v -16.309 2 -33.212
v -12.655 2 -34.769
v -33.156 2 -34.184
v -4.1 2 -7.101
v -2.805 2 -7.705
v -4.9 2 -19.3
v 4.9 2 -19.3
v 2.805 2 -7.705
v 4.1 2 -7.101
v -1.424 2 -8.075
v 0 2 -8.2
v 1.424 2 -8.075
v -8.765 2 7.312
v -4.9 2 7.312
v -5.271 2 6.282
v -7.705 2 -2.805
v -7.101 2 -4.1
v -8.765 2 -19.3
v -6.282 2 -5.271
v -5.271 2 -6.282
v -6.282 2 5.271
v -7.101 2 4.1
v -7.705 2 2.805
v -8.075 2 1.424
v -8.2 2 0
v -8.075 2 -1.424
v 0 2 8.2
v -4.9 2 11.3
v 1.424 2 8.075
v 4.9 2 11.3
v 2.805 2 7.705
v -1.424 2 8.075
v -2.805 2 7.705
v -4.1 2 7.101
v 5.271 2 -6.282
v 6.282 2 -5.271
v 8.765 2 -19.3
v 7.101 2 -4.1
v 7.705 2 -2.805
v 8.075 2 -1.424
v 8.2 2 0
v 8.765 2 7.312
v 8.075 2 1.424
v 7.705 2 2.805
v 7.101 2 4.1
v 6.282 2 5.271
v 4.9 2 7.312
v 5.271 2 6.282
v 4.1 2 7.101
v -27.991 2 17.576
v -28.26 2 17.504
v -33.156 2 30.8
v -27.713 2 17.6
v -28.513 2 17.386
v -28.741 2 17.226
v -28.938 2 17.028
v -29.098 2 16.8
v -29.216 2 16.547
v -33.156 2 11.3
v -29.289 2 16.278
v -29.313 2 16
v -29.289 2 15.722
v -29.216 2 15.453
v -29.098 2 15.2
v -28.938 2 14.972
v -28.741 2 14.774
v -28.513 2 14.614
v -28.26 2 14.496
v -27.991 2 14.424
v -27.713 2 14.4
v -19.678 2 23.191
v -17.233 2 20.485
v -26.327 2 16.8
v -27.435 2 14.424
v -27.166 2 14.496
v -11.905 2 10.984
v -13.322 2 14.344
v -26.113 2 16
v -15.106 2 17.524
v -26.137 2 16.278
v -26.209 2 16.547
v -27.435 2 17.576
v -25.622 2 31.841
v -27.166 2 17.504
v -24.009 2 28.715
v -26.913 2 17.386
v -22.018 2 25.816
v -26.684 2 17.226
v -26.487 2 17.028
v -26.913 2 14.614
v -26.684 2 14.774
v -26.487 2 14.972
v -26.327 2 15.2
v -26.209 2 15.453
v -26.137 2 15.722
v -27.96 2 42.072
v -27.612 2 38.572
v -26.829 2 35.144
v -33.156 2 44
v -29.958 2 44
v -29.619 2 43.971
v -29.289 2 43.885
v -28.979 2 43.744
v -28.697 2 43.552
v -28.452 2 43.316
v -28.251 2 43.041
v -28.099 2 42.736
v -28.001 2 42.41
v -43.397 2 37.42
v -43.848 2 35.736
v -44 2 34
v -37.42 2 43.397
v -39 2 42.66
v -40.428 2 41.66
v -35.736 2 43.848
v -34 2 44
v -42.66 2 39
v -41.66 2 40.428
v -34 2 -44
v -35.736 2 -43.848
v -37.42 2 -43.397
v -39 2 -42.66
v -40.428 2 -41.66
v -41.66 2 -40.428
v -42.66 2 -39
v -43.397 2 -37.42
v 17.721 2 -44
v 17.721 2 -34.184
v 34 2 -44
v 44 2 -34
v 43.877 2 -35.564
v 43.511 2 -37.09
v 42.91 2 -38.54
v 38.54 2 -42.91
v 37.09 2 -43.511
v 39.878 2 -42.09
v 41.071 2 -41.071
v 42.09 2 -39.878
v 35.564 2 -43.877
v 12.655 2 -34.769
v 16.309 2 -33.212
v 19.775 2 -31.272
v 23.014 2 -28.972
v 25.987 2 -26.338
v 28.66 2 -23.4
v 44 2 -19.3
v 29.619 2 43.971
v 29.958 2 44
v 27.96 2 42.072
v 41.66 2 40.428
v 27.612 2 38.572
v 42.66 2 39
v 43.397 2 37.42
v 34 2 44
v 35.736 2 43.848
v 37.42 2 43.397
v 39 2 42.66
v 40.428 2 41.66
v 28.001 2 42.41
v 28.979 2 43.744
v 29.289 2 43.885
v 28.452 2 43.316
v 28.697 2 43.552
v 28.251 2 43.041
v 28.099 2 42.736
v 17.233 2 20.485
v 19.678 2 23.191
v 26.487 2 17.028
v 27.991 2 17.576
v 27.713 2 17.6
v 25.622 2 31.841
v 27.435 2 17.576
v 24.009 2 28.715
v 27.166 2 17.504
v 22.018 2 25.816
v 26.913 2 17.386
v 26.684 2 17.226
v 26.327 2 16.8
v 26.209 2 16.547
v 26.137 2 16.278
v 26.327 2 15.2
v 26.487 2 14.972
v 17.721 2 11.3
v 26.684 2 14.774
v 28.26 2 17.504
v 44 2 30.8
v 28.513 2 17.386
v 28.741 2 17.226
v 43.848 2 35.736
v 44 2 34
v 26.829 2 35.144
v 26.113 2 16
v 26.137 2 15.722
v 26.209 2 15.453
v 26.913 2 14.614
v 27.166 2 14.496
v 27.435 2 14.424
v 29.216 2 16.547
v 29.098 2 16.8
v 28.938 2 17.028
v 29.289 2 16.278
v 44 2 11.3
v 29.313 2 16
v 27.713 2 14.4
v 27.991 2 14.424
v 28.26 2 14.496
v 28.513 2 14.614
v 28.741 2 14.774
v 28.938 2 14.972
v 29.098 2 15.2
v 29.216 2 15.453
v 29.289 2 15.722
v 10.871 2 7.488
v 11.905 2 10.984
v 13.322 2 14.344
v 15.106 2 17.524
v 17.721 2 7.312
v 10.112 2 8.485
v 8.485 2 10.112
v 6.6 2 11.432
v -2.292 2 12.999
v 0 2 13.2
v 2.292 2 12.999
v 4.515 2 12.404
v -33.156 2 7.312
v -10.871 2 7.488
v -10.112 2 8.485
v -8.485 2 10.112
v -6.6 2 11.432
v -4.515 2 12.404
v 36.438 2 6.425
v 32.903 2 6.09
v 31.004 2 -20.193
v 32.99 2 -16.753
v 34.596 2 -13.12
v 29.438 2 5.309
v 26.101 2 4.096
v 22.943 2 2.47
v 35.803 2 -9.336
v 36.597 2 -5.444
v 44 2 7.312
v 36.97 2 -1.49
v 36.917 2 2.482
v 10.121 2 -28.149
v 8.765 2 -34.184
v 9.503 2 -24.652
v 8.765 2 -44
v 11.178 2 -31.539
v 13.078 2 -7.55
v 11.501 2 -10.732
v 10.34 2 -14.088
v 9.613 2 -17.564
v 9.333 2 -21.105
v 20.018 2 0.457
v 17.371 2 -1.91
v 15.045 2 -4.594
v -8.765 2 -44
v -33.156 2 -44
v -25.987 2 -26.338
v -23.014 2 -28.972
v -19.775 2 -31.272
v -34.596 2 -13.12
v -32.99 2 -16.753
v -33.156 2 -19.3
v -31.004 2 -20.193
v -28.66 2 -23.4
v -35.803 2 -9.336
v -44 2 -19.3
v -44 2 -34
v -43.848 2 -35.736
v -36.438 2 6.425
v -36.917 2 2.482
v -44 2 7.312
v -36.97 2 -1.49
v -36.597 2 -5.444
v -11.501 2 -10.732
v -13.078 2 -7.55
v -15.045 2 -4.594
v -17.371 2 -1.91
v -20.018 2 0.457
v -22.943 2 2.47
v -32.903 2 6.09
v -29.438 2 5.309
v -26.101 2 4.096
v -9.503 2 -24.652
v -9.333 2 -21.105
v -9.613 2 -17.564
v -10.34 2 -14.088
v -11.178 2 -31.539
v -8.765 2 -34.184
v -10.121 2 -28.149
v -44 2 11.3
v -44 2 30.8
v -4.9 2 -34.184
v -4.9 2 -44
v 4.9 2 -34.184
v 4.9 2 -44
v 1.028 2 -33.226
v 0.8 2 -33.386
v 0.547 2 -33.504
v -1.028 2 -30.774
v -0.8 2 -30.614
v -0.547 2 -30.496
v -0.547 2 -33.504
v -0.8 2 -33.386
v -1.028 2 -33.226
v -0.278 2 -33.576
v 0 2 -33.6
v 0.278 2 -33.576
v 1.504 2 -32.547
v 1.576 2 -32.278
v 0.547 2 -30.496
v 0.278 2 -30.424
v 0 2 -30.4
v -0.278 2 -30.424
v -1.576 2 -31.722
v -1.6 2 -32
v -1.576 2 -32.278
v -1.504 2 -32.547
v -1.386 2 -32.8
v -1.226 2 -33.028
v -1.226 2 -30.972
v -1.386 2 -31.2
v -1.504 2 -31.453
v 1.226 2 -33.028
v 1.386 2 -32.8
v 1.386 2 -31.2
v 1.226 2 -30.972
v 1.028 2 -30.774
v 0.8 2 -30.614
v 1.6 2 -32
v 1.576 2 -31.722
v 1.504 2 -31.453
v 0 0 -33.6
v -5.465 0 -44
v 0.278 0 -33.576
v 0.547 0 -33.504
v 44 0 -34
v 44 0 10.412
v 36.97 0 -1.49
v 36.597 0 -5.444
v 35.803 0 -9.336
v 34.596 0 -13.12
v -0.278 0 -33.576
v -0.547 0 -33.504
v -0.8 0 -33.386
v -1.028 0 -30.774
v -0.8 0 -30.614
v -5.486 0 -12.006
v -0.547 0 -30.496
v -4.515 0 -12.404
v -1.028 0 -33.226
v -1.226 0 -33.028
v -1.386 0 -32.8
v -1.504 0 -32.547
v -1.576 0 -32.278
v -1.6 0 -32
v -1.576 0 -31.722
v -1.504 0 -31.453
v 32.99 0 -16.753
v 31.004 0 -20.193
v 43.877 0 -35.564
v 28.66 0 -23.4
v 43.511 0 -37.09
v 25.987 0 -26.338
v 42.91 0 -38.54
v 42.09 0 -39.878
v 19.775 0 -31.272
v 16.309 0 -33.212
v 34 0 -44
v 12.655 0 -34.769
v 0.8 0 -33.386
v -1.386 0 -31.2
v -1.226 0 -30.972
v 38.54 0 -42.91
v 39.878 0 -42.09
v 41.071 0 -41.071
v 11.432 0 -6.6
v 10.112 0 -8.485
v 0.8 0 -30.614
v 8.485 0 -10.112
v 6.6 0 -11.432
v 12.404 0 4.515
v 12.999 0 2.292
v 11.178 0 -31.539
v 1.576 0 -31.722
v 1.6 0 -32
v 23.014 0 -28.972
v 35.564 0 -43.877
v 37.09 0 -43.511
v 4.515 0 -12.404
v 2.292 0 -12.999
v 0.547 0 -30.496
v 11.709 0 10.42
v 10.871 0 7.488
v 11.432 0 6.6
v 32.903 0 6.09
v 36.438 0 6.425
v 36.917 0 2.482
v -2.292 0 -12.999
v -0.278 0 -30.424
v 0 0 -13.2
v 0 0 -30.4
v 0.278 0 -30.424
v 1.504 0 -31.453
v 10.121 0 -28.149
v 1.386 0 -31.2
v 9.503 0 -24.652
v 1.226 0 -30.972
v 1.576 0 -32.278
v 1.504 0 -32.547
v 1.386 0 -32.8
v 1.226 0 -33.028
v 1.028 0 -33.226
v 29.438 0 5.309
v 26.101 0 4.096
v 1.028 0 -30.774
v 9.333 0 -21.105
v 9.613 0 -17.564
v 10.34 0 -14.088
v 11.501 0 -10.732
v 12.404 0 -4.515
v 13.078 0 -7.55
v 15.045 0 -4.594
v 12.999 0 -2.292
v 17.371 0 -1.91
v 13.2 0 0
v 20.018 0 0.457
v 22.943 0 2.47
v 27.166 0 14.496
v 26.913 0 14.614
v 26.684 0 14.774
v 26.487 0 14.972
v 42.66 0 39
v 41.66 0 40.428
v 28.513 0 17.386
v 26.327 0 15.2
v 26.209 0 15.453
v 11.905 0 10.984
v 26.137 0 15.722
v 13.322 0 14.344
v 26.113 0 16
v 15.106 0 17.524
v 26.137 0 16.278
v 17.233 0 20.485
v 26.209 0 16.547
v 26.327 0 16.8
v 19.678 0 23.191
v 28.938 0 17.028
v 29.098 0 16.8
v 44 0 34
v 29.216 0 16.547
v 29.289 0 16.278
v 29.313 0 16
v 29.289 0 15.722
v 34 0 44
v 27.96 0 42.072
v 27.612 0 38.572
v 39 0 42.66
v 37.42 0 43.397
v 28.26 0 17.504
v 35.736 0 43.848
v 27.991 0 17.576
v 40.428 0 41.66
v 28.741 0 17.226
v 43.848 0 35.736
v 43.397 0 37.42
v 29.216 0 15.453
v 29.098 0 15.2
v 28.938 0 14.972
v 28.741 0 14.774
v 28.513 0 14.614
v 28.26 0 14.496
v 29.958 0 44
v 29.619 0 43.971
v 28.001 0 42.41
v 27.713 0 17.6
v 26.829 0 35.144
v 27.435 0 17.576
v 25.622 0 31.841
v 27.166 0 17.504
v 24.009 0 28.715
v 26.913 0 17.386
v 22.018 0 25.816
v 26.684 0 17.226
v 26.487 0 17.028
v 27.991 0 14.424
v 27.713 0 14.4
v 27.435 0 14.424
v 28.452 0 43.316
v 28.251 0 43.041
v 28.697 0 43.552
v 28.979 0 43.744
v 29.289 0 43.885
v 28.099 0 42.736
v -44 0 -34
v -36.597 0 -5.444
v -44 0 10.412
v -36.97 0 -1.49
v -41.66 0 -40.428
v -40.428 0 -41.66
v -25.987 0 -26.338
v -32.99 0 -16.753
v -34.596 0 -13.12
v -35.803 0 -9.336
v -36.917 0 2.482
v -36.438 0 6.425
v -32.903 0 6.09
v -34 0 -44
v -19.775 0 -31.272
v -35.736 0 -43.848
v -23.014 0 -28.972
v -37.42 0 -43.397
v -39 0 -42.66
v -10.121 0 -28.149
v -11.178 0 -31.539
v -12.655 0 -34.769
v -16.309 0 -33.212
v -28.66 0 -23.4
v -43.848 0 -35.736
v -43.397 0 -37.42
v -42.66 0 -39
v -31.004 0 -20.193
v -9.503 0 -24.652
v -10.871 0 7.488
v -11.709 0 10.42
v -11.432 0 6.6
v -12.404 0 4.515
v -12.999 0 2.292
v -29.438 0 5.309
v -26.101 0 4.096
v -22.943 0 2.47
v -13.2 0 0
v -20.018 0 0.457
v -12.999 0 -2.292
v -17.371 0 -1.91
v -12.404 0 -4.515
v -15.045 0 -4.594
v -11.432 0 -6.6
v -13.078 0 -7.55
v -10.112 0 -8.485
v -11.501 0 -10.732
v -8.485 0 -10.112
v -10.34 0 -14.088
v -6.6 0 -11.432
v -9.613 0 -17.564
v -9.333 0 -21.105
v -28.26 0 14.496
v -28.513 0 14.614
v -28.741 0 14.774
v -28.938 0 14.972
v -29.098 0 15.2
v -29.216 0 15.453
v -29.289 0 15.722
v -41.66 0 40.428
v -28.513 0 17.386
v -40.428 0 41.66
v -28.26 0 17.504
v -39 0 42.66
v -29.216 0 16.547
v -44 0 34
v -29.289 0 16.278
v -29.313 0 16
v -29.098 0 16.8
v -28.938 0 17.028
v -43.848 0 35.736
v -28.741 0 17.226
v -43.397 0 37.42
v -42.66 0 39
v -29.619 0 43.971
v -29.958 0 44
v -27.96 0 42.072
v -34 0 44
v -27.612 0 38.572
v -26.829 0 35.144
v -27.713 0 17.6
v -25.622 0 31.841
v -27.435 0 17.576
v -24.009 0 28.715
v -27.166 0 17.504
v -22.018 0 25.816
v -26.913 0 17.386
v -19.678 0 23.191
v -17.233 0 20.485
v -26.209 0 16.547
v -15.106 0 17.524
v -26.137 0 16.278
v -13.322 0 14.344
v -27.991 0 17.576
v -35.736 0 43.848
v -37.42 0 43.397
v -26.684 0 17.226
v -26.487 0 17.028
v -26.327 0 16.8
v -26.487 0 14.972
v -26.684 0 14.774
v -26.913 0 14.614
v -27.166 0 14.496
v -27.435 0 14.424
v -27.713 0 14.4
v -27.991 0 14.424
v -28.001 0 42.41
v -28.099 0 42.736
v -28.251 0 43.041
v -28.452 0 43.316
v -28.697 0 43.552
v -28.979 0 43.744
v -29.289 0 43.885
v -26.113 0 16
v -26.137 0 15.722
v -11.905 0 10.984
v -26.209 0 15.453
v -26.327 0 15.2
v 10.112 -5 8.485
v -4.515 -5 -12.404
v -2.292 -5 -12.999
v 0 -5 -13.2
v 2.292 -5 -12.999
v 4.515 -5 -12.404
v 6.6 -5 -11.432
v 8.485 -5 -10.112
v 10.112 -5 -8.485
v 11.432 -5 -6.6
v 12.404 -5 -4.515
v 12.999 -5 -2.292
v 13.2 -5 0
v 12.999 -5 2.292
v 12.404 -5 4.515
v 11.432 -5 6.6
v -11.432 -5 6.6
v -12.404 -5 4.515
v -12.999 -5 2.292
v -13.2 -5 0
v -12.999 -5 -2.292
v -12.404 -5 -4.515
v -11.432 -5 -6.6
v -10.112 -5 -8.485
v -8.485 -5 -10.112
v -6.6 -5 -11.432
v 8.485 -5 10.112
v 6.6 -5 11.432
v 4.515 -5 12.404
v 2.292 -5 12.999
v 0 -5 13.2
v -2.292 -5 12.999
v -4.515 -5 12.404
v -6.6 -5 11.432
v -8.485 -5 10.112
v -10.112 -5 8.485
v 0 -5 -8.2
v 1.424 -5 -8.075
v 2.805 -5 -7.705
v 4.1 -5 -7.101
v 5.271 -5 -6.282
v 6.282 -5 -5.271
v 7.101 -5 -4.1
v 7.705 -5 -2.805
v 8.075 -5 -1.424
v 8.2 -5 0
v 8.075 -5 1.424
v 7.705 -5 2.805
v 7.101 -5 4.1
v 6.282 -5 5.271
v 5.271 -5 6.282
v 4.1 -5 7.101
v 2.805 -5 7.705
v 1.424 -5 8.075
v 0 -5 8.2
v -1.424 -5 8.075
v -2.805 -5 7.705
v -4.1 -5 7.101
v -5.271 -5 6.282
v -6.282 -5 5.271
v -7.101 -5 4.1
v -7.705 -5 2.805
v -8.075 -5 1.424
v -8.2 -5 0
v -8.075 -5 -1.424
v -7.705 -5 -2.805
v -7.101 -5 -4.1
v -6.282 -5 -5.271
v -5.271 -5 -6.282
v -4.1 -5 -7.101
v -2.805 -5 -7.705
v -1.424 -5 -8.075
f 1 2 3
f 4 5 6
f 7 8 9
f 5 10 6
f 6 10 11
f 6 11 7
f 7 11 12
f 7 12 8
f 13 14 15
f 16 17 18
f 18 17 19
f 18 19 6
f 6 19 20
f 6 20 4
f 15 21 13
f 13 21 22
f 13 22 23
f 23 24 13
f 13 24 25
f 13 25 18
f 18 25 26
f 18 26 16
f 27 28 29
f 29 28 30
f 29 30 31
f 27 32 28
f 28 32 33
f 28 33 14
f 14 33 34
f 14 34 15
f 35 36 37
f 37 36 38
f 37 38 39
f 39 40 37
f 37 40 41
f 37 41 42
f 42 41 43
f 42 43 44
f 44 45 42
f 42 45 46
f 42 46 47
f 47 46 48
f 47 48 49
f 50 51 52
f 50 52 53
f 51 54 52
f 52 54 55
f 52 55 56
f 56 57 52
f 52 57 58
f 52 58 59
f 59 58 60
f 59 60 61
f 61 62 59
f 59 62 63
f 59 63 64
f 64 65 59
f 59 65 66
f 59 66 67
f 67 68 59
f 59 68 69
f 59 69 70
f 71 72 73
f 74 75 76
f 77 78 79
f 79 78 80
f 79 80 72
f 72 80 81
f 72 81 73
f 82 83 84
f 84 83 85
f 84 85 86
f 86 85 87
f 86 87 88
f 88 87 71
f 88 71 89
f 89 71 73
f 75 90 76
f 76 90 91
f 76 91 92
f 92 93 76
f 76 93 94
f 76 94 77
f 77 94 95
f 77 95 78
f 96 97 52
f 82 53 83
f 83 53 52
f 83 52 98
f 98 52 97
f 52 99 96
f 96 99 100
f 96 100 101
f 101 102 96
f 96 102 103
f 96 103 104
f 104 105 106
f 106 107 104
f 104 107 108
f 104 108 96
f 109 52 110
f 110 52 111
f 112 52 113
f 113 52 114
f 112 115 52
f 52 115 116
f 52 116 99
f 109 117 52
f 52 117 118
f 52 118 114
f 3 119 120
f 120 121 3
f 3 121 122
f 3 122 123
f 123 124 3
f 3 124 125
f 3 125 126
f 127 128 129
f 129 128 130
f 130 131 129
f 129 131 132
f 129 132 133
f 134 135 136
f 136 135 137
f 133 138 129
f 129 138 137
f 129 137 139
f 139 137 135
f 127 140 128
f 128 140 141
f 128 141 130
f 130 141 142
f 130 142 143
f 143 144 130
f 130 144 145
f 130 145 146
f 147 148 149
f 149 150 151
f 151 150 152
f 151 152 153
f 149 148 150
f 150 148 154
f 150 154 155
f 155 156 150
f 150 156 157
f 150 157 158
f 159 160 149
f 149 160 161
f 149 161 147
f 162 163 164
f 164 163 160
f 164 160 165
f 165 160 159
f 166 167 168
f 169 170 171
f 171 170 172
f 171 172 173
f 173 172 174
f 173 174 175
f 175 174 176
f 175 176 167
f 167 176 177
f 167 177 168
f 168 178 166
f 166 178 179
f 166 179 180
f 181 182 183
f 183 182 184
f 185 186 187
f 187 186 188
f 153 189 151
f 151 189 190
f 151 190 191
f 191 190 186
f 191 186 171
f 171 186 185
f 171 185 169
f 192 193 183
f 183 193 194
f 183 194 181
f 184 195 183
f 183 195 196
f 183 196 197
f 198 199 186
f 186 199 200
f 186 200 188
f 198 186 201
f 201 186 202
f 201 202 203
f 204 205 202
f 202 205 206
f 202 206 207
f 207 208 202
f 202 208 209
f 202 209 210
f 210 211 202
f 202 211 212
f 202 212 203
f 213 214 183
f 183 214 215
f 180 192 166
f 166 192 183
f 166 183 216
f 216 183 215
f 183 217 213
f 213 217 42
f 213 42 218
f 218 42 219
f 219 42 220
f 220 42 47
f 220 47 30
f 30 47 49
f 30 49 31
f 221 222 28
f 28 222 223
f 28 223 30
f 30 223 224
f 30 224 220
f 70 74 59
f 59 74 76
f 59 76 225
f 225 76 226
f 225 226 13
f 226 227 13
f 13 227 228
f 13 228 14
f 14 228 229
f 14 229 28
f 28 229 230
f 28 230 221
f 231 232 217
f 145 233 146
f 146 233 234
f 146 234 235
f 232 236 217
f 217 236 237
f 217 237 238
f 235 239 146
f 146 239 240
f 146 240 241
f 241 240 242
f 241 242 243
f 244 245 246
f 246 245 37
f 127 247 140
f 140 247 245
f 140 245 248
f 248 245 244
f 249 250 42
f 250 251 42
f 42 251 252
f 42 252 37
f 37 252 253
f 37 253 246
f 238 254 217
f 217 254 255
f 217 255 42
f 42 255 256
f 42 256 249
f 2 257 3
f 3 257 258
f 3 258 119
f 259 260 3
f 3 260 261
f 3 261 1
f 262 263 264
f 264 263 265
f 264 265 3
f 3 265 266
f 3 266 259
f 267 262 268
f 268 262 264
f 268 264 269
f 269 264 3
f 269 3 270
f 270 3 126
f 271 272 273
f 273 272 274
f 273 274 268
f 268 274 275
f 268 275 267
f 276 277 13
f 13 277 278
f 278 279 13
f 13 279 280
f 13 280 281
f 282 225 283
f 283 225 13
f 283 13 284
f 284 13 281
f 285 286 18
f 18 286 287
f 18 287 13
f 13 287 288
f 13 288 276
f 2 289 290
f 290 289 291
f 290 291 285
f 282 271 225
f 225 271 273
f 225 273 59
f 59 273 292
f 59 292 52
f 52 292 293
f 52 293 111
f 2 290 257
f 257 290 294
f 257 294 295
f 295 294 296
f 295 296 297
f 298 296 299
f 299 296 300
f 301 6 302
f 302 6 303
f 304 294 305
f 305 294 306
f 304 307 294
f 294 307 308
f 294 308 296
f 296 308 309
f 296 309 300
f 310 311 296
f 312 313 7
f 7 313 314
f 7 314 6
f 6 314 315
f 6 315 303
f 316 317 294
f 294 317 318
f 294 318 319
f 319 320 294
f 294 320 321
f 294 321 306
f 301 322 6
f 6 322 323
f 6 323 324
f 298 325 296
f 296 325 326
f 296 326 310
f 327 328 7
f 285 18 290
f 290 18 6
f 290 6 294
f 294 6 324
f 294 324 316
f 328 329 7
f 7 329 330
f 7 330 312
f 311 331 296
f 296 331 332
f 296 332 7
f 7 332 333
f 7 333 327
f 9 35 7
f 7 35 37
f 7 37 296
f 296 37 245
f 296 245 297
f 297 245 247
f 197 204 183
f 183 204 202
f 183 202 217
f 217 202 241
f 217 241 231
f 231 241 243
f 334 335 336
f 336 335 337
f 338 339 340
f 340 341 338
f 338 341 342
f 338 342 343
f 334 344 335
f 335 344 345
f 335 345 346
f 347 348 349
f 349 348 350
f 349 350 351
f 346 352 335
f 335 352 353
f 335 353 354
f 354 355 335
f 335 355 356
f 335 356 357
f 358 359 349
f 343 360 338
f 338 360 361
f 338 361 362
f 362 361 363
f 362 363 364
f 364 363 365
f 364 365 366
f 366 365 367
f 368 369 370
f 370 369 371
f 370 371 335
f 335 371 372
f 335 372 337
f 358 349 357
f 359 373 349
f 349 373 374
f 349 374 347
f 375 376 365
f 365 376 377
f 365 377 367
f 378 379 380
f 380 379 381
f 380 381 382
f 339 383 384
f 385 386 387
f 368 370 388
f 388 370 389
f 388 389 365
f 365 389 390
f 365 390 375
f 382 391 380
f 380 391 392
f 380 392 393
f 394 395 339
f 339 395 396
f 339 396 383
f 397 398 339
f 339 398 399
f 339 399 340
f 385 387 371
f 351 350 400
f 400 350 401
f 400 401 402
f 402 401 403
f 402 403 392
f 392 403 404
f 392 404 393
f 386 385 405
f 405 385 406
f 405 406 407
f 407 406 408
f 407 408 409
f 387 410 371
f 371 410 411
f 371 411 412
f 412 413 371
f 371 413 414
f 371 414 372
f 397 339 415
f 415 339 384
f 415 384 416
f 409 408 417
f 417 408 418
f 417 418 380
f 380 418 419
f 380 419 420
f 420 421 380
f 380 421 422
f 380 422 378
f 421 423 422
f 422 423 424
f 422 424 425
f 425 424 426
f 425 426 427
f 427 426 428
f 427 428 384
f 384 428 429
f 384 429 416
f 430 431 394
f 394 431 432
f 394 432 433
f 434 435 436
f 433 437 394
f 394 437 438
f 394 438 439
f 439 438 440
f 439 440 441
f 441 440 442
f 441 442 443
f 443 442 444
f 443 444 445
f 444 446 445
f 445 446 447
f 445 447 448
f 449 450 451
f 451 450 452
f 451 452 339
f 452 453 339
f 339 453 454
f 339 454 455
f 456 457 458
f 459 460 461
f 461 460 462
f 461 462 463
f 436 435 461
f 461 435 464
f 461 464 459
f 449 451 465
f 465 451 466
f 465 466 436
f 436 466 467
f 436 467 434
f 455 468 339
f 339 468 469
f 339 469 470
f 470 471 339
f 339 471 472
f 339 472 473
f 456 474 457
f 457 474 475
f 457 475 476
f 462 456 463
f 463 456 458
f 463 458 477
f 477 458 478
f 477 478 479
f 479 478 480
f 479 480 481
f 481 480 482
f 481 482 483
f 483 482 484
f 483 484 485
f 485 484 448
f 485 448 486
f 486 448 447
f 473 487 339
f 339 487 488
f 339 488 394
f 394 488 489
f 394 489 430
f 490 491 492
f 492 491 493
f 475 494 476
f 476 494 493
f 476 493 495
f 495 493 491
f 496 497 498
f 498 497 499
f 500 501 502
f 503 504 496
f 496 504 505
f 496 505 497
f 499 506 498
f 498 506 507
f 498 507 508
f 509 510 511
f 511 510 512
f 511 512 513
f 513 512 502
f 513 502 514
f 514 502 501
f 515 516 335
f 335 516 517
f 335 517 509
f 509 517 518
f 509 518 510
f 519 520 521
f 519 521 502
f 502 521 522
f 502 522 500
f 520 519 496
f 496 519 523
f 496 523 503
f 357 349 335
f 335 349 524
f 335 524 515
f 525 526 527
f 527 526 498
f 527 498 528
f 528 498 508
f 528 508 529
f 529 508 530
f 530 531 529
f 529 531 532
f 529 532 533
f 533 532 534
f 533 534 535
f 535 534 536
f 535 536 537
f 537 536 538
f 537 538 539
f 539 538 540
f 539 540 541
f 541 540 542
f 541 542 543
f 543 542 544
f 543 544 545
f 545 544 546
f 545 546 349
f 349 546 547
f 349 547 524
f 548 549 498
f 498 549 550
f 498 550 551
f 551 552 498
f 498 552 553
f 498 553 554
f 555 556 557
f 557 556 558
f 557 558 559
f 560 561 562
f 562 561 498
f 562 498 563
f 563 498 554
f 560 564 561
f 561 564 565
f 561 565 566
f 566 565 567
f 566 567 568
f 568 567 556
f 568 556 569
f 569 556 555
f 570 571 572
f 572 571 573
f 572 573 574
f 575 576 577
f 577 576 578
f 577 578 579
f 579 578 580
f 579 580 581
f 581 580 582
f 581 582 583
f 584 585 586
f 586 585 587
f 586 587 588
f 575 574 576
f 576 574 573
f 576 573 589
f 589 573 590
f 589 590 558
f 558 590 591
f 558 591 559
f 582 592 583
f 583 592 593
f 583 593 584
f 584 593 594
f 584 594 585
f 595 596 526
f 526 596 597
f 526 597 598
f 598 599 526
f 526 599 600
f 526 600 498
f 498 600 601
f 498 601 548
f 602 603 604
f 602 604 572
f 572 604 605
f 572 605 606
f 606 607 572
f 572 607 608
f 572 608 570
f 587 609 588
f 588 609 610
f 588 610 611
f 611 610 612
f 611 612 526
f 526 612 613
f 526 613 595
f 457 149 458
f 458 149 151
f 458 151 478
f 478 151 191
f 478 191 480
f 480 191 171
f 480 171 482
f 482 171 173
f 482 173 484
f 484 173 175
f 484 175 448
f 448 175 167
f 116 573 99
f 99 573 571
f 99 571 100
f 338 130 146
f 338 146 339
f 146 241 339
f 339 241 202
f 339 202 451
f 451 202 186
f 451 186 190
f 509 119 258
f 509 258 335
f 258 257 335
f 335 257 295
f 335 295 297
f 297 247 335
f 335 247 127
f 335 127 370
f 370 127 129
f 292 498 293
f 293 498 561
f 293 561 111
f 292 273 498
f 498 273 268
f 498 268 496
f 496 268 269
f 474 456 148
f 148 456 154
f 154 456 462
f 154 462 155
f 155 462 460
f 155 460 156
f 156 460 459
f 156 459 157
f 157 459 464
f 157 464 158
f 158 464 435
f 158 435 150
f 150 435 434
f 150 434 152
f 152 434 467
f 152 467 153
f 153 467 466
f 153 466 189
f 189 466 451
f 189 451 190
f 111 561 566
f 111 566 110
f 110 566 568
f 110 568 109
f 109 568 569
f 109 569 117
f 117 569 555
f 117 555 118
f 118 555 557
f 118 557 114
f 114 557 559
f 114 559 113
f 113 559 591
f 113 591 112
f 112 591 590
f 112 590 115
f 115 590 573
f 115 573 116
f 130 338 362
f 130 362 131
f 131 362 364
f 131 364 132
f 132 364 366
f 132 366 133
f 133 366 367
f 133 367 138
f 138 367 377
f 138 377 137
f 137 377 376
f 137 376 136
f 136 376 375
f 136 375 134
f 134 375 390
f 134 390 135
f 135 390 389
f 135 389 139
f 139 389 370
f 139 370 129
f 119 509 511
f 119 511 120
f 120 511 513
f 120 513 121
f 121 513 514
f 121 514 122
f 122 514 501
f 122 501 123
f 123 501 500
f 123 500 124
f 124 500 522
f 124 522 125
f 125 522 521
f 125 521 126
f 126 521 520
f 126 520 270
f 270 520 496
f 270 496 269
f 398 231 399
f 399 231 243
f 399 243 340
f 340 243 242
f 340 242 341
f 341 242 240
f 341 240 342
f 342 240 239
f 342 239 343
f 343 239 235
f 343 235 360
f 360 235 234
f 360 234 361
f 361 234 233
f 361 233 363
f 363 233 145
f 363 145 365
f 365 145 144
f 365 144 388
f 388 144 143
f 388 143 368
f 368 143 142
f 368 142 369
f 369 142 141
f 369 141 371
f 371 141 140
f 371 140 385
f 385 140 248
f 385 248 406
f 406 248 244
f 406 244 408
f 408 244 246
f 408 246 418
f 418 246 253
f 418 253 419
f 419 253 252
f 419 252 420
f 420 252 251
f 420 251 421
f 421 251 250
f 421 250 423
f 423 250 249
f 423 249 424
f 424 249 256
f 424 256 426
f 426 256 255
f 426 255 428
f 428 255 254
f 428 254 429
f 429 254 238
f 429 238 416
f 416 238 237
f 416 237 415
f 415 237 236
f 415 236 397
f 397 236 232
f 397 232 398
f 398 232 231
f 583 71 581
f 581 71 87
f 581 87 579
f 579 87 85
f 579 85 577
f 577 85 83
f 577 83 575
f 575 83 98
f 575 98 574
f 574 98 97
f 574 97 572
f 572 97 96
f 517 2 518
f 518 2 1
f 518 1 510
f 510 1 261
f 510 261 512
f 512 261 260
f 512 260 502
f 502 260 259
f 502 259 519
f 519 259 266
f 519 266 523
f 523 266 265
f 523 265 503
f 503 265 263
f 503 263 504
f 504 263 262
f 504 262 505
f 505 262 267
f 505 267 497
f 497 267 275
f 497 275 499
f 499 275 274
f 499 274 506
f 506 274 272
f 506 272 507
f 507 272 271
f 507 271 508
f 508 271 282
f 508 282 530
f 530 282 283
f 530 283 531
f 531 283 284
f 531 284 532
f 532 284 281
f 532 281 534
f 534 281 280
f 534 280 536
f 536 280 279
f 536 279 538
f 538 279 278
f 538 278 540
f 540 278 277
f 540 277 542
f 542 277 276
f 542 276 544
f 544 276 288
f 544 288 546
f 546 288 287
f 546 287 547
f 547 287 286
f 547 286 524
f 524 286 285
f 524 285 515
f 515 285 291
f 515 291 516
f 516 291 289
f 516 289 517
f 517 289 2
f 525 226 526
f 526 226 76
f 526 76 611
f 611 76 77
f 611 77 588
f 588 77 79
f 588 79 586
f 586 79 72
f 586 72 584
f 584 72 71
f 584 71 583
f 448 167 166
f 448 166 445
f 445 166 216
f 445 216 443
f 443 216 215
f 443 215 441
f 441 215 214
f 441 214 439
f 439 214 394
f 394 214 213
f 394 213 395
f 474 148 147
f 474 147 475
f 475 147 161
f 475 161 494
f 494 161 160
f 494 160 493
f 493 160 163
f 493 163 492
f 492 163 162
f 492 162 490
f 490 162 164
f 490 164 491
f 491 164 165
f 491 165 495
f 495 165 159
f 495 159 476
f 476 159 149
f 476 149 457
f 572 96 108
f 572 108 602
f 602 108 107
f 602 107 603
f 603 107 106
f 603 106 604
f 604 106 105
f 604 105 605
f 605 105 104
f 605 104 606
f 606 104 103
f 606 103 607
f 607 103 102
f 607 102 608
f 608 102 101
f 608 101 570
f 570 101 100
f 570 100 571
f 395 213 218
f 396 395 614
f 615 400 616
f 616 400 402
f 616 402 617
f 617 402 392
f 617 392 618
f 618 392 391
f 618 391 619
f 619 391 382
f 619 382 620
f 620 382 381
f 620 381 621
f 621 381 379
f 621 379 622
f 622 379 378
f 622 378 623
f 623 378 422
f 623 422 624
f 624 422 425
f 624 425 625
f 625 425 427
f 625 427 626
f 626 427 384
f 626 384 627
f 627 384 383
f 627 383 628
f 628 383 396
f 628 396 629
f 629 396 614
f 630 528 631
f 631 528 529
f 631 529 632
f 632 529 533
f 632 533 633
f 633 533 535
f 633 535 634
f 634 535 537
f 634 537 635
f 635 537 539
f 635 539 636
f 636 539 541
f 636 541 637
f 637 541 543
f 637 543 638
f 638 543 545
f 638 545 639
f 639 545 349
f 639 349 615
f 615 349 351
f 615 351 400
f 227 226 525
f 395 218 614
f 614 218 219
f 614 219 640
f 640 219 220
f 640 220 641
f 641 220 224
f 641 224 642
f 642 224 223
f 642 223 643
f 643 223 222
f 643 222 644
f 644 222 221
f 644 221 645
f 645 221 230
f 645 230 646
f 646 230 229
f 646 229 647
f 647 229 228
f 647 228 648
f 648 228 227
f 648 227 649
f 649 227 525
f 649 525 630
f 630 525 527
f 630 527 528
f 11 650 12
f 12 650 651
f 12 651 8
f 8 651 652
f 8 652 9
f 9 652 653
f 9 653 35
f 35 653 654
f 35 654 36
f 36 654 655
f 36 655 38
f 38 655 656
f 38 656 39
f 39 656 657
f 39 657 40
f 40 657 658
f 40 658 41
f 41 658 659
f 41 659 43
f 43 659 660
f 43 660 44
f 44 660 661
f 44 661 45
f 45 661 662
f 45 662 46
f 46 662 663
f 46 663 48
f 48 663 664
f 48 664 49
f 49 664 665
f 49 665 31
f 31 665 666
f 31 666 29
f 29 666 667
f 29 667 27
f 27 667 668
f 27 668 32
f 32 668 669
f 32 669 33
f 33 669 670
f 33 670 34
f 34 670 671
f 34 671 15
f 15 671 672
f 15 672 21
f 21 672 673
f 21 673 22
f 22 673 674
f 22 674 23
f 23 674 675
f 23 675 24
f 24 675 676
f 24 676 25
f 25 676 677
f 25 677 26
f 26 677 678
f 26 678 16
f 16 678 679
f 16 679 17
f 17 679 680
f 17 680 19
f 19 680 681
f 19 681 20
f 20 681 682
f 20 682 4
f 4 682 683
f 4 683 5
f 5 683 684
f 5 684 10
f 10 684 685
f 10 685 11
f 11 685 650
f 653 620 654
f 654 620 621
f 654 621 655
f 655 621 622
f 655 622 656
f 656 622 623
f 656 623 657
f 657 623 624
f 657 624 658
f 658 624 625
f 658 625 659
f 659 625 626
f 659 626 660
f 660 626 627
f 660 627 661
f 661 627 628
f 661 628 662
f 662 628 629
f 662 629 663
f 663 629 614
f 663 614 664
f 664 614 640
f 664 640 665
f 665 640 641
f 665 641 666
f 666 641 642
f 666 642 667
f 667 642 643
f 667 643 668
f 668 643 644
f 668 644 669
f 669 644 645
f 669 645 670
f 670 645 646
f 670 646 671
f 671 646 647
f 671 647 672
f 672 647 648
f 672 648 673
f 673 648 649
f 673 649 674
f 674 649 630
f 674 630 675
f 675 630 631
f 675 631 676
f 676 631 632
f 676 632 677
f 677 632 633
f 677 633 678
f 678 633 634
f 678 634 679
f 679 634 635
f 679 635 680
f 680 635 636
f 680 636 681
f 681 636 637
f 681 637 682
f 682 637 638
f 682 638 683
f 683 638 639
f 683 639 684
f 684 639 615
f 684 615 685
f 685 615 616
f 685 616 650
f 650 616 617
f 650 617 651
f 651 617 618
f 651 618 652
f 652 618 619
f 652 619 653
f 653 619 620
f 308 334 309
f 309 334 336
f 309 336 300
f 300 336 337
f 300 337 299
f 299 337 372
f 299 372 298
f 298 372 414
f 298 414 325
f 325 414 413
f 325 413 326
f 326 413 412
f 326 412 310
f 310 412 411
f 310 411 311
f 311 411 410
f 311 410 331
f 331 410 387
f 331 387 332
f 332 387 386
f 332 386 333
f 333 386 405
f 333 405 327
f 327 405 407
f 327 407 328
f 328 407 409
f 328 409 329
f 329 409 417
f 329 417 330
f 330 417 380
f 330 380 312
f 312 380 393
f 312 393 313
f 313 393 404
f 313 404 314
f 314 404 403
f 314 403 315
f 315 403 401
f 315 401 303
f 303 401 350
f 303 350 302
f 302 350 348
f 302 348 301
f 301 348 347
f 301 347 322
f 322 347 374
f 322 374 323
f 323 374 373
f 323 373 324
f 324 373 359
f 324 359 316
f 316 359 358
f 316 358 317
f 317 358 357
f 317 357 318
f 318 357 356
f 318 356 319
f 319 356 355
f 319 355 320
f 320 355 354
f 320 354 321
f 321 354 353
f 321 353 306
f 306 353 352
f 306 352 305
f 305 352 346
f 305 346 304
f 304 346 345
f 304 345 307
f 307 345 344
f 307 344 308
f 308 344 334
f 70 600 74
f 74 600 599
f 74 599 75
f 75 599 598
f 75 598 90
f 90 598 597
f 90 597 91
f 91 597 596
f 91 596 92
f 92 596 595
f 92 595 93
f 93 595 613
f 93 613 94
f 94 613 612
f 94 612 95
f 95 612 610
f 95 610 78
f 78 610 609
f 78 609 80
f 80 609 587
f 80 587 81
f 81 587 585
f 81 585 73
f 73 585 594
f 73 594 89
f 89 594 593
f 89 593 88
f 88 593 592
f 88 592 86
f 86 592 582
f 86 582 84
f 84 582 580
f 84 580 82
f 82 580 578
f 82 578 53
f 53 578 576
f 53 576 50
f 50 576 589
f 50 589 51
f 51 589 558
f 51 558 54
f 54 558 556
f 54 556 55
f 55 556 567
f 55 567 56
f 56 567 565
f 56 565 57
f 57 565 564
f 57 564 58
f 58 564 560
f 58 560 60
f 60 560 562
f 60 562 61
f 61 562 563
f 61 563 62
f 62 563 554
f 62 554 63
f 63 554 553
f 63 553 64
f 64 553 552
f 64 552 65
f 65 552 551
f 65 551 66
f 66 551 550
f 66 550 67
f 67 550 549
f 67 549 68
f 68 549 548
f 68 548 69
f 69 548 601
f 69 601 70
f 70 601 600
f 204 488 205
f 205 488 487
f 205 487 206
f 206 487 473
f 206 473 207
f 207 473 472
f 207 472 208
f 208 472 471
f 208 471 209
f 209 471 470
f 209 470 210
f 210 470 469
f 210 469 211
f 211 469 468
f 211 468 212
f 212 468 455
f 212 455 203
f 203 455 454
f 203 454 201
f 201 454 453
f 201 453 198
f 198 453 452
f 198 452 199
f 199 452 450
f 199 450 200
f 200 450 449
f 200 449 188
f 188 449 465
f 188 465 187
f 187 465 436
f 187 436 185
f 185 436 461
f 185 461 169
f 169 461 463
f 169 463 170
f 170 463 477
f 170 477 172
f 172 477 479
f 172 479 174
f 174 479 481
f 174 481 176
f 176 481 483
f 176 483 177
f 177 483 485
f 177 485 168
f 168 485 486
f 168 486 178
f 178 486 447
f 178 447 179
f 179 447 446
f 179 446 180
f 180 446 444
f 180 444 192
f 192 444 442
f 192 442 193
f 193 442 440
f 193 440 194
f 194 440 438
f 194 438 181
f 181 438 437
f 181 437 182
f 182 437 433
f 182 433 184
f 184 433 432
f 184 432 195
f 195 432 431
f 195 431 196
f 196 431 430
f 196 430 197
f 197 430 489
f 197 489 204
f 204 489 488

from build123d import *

# Parameters (mm, degrees)
SKETCH1_W                = 88
SKETCH1_H                = 88
BOSS_EXTRUDE1_DEPTH      = 2
FILLET1_R                = 10
SKETCH3_R                = 37
CUT_EXTRUDE2_DEPTH       = 3
SKETCH5_R                = 40.5
SKETCH5_R_2              = 10
BOSS_EXTRUDE2_DEPTH      = 2
CUT_EXTRUDE3_DEPTH       = 3
CIRPATTERN1_COUNT        = 3
SKETCH17_R               = 27.977706125
CUT_EXTRUDE4_DEPTH       = 3
CUT_EXTRUDE5_DEPTH       = 3
FILLET2_R                = 2
SKETCH19_R               = 13.2
SKETCH19_R_2             = 8.2
BOSS_EXTRUDE3_DEPTH      = 5
BOSS_EXTRUDE3_DEPTH_BACK = 2
SKETCH20_R               = 1.6
CUT_EXTRUDE6_DEPTH       = 3
CIRPATTERN2_COUNT        = 3


with BuildPart() as part:
    # Sketch1 → Boss-Extrude1 (new body)
    with BuildSketch(Plane(origin=(0, 0, 0), x_dir=(1, 0, 0), z_dir=(0, 1, 0))):
        Rectangle(SKETCH1_W, SKETCH1_H)
    extrude(amount=BOSS_EXTRUDE1_DEPTH)

    # Fillet1
    fillet1_edges = [part.edges().sort_by_distance(p)[0] for p in [
        (44, 1, 44),
        (-44, 1, 44),
        (-44, 1, -44),
        (44, 1, -44),
    ]]
    fillet(fillet1_edges, radius=FILLET1_R)

    # Sketch3 → Cut-Extrude2 (cut, through all)
    with BuildSketch(Plane(origin=(0, 2, 0), x_dir=(1, 0, 0), z_dir=(0, 1, 0))):
        Circle(SKETCH3_R)
    extrude(amount=-CUT_EXTRUDE2_DEPTH, mode=Mode.SUBTRACT)

    # Sketch5 → Boss-Extrude2 (add)
    with BuildSketch(Plane(origin=(0, 0, 0), x_dir=(1, 0, 0), z_dir=(0, 1, 0))):
        Circle(SKETCH5_R)
        Circle(SKETCH5_R_2, mode=Mode.SUBTRACT)
    extrude(amount=BOSS_EXTRUDE2_DEPTH)

    # Sketch16 → Cut-Extrude3 (cut, through all)
    with BuildSketch(Plane(origin=(0, 2, 0), x_dir=(1, 0, 0), z_dir=(0, 1, 0))):
        with BuildLine():
            ThreePointArc((12.654745303, 34.768626969), (13.077619626, 7.550367211), (36.437886861, -6.424982574))
            ThreePointArc((36.437886861, -6.424982574), (32.04293994, 18.5), (12.654745303, 34.768626969))
        make_face()
    cut_extrude3 = extrude(amount=-CUT_EXTRUDE3_DEPTH, mode=Mode.SUBTRACT)

    # CirPattern1: Cut-Extrude3 ×3 about axis
    cirpattern1_axis = Axis((0, 0, 0), (0, 1, 0))
    for i in range(1, CIRPATTERN1_COUNT):
        add(cut_extrude3.rotate(cirpattern1_axis, i * 360 / CIRPATTERN1_COUNT), mode=Mode.SUBTRACT)

    # Sketch17 → Cut-Extrude4 (cut, through all)
    with BuildSketch(Plane(origin=(0, 2, 0), x_dir=(1, 0, 0), z_dir=(0, 1, 0))):
        with Locations((0, -43.078440548)):
            Circle(SKETCH17_R)
    extrude(amount=-CUT_EXTRUDE4_DEPTH, mode=Mode.SUBTRACT)

    # Sketch18 → Cut-Extrude5 (cut, through all)
    with BuildSketch(Plane(origin=(0, 2, 0), x_dir=(1, 0, 0), z_dir=(0, 1, 0))):
        with BuildLine():
            ThreePointArc((-10, 0), (-12.516559025, -12.564476209), (-19.677986964, -23.190532939))
            ThreePointArc((-19.677986964, -23.190532939), (0, -15.100734422), (19.677986964, -23.190532939))
            ThreePointArc((19.677986964, -23.190532939), (12.516559025, -12.564476209), (10, 0))
            ThreePointArc((10, 0), (0, -10), (-10, 0))
        make_face()
    extrude(amount=-CUT_EXTRUDE5_DEPTH, mode=Mode.SUBTRACT)

    # Fillet2
    fillet2_edges = [part.edges().sort_by_distance(p)[0] for p in [
        (-27.962524354, 1, 44),
        (27.962524354, 1, 44),
    ]]
    fillet(fillet2_edges, radius=FILLET2_R)

    # Sketch19 → Boss-Extrude3 (add, two sides)
    with BuildSketch(Plane.XZ) as boss_extrude3_sk:
        Circle(SKETCH19_R)
        Circle(SKETCH19_R_2, mode=Mode.SUBTRACT)
    extrude(amount=BOSS_EXTRUDE3_DEPTH)
    extrude(boss_extrude3_sk.sketch, amount=-BOSS_EXTRUDE3_DEPTH_BACK)

    # Sketch20 → Cut-Extrude6 (cut, through all)
    with BuildSketch(Plane.XZ):
        with Locations((0, -32)):
            Circle(SKETCH20_R)
    cut_extrude6 = extrude(amount=-CUT_EXTRUDE6_DEPTH, mode=Mode.SUBTRACT)

    # CirPattern2: Cut-Extrude6 ×3 about axis
    cirpattern2_axis = Axis((0, 0, 0), (0, 1, 0))
    for i in range(1, CIRPATTERN2_COUNT):
        add(cut_extrude6.rotate(cirpattern2_axis, i * 360 / CIRPATTERN2_COUNT), mode=Mode.SUBTRACT)


solid = part.part
